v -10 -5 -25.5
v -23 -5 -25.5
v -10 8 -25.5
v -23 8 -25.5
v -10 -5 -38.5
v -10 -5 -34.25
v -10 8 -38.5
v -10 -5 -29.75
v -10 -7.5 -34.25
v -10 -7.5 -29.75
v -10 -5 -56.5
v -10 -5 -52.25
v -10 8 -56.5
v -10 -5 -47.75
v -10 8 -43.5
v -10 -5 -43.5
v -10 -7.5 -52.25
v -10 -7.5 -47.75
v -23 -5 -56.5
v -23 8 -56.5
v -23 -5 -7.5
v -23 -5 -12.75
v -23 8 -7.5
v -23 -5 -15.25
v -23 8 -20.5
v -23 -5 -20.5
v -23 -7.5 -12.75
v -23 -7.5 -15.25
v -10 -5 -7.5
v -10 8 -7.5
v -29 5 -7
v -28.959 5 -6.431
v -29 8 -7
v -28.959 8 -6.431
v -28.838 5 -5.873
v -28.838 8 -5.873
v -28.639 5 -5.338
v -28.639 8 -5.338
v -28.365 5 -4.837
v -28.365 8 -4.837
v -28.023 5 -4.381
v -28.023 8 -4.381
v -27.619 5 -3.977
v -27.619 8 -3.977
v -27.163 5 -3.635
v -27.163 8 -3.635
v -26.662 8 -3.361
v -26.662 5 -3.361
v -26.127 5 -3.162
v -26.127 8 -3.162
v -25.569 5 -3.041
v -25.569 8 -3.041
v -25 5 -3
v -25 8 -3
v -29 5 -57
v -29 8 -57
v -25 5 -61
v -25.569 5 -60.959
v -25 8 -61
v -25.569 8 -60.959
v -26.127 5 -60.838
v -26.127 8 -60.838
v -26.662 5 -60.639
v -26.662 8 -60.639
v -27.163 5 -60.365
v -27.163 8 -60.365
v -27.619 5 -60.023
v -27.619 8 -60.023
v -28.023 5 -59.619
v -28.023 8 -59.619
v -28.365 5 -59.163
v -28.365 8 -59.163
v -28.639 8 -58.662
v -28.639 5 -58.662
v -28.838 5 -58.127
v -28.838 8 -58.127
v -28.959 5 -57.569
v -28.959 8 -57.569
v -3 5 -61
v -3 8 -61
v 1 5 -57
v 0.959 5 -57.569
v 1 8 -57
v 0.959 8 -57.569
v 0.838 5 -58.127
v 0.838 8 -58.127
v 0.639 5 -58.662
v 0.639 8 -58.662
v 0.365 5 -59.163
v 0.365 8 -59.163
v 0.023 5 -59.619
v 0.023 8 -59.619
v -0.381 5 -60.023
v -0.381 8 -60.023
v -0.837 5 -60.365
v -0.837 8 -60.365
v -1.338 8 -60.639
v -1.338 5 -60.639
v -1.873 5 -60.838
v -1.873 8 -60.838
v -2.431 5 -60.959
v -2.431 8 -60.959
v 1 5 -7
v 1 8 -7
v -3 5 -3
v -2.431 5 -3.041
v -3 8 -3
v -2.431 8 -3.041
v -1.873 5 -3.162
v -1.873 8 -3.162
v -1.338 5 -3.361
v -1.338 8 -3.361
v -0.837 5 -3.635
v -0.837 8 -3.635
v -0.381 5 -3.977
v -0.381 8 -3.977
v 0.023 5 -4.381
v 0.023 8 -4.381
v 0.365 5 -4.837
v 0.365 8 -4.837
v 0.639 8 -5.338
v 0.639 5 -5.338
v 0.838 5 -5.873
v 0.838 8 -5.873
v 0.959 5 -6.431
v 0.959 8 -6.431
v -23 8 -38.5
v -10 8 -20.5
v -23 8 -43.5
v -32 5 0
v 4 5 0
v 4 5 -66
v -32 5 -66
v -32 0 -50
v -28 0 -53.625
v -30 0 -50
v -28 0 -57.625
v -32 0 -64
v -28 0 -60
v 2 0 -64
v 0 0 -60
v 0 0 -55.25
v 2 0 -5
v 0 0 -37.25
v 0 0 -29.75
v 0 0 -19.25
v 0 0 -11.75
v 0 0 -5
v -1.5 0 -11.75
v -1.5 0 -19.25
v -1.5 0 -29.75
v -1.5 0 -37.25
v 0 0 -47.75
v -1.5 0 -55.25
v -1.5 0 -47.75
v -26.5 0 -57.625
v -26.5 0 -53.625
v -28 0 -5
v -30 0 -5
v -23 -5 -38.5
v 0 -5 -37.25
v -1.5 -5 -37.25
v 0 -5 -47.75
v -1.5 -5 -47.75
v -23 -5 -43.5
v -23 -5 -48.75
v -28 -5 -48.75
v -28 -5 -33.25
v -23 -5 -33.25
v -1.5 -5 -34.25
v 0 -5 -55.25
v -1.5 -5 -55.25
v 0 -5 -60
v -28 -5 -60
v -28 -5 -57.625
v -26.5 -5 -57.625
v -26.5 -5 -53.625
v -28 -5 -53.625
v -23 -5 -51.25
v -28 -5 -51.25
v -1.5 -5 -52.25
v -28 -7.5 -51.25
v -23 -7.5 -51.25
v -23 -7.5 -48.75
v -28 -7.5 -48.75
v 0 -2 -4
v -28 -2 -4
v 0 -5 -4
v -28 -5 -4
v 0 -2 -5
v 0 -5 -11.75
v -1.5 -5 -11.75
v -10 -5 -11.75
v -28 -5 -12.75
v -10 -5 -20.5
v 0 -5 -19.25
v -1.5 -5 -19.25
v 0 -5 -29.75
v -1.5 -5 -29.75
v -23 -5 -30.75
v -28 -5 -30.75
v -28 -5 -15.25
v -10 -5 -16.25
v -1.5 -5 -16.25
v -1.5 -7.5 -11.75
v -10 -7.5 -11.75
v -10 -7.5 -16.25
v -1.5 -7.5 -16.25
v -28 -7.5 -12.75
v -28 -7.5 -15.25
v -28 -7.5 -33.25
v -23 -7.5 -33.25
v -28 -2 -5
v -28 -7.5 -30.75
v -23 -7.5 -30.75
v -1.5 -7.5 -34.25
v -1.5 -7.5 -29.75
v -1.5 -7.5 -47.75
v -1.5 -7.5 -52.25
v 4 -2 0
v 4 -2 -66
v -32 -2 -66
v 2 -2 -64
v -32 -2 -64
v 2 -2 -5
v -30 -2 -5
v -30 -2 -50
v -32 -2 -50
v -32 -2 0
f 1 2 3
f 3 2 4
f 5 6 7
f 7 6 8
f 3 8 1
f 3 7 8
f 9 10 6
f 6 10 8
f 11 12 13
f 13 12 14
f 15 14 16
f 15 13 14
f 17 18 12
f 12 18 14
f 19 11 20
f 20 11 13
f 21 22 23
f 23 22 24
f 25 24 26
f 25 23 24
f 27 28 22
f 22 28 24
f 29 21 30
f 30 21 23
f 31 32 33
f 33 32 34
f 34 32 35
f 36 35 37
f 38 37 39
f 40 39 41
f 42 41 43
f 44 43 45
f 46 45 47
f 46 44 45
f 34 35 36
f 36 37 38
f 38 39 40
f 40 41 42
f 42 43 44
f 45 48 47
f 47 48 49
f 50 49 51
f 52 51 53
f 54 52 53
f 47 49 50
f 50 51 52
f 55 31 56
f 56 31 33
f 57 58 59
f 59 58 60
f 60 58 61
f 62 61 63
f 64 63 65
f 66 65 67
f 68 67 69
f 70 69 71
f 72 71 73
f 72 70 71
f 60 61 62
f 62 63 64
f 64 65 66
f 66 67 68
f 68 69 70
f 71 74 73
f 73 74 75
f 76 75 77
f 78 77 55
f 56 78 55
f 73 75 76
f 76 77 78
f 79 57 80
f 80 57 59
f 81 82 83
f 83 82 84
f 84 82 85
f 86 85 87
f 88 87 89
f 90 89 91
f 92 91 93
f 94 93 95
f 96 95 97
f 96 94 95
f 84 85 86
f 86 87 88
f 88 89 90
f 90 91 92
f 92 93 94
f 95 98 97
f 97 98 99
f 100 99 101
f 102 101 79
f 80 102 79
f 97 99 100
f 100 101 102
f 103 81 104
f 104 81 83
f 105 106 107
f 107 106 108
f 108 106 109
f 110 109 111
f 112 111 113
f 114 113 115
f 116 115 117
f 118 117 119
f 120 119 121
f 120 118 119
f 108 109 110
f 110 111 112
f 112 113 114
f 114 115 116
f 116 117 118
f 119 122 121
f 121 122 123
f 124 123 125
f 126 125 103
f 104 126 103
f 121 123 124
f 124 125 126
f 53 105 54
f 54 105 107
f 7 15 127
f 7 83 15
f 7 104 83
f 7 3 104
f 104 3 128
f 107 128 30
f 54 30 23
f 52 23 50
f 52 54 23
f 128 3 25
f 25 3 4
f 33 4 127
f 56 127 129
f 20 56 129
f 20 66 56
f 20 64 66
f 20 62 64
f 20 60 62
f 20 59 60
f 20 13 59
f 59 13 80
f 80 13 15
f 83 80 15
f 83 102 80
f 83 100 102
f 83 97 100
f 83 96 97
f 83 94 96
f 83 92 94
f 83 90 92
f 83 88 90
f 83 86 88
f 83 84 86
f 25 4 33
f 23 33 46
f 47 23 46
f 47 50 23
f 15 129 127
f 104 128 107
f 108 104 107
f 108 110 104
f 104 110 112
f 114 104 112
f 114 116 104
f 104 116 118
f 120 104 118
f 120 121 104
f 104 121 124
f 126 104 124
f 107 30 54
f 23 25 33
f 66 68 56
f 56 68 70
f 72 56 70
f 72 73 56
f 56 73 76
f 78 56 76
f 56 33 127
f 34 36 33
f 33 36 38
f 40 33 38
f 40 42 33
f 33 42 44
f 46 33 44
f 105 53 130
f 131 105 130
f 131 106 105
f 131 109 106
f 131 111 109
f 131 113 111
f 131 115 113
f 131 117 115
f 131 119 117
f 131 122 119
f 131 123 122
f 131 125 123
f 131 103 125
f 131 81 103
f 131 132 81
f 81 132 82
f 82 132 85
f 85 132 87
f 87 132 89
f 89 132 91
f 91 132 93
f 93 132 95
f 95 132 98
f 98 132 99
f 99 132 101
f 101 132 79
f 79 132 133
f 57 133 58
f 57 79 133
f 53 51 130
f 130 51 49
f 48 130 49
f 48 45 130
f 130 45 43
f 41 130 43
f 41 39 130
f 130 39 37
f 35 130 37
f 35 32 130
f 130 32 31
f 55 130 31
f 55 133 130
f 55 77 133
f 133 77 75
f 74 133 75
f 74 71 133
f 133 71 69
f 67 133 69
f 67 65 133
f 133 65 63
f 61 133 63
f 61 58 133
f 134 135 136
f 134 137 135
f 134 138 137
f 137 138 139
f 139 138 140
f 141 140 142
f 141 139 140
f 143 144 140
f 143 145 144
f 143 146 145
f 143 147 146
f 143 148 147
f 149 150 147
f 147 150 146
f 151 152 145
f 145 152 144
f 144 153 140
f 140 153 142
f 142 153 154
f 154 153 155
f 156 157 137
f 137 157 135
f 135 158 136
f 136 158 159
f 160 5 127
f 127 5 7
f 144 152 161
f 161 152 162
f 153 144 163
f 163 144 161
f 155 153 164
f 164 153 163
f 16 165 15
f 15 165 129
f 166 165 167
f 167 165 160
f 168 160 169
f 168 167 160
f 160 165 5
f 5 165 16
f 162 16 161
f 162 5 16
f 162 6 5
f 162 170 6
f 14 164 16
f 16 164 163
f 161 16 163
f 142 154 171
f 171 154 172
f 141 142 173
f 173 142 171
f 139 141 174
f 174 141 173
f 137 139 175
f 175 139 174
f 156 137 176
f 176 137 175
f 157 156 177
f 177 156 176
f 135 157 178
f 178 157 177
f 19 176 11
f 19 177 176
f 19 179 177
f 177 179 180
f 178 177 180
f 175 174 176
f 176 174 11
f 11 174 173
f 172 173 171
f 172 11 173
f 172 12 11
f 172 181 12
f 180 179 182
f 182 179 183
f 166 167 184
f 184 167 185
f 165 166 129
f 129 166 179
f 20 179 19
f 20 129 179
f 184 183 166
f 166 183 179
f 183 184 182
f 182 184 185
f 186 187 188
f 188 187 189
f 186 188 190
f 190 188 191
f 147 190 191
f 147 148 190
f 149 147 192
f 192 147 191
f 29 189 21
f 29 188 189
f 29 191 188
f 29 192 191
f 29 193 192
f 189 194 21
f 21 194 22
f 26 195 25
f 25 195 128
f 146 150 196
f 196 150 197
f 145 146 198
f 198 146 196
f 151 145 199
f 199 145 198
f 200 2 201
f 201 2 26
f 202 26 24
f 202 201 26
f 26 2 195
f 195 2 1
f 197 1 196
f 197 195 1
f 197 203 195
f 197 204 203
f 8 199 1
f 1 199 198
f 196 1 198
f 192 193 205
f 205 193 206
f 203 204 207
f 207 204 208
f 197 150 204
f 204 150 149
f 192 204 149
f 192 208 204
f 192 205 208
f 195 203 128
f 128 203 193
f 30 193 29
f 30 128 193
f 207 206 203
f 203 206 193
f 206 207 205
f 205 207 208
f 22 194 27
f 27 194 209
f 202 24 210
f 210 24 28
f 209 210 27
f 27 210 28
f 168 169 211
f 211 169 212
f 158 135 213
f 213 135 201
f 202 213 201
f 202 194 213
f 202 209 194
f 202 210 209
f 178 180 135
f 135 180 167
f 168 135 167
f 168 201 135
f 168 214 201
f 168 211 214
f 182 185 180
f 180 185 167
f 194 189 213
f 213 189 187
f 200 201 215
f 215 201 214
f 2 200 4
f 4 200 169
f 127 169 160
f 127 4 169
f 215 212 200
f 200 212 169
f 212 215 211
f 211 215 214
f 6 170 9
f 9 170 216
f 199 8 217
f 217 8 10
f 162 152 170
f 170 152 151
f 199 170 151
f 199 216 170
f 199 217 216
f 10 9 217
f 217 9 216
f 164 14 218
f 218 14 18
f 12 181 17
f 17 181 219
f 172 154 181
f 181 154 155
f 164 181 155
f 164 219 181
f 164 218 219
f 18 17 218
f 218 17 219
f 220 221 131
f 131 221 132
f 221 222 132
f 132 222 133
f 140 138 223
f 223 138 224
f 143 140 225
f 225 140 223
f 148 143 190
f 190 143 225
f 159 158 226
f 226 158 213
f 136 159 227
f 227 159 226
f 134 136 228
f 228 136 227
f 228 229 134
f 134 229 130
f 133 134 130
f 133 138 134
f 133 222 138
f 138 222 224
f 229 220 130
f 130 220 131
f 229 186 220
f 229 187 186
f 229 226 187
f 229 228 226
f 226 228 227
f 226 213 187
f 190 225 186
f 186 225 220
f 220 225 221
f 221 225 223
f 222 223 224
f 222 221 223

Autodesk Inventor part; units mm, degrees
ref_plane "YZ Plane" through (0, 0, 0) normal (1, 0, 0) x (0, 1, 0)
ref_plane "XZ Plane" through (0, 0, 0) normal (0, 1, 0) x (-1, 0, 0)
ref_plane "XY Plane" through (0, 0, 0) normal (0, 0, 1) x (1, 0, 0)
sketch "Sketch1" plane through (0, 0, 0) normal (0, 1, 0) x (-1, 0, 0)
  line L0 (23, -43.5) -> (23, -56.5)
  line L1 (28, -33.25) -> (23, -33.25)
  line L2 (28, -30.75) -> (23, -30.75)
  line L3 (28, -48.75) -> (23, -48.75)
  line L4 (10, -56.5) -> (23, -56.5)
  line L5 (10, -7.5) -> (10, -20.5)
  line L6 (23, -43.5) -> (10, -43.5)
  line L7 (10, -43.5) -> (10, -56.5)
  line L8 (10, -38.5) -> (23, -38.5)
  line L9 (23, -38.5) -> (23, -25.5)
  line L10 (25.5, 0.6818) -> (25.5, -55.6748) construction
  line L11 (16.5, 0.1481) -> (16.5, -50.7513) construction
  line L12 (10, -25.5) -> (10, -38.5)
  line L13 (32.1467, -32) -> (-0.6768, -32) construction
  line L14 (10, -20.5) -> (23, -20.5)
  line L15 (23, -25.5) -> (10, -25.5)
  line L16 (23, -7.5) -> (10, -7.5)
  line L17 (30.1668, -14) -> (1.95, -14) construction
  line L18 (1.5, -34.25) -> (10, -34.25)
  line L19 (1.6727, -50) -> (31.8542, -50) construction
  line L20 (28, -60) -> (0, -60)
  line L21 (23, -51.25) -> (28, -51.25)
  line L22 (23, -7.5) -> (23, -20.5)
  line L23 (0, -29.75) -> (10, -29.75)
  line L24 (23, -15.25) -> (28, -15.25)
  line L25 (23, -12.75) -> (28, -12.75)
  line L26 (1.5, -16.25) -> (10, -16.25)
  line L27 (0, -11.75) -> (10, -11.75)
  line L28 (0, -47.75) -> (10, -47.75)
  line L29 (1.5, -52.25) -> (10, -52.25)
  line L30 (28, 0) -> (0, 0)
  line L31 (28, 0) -> (32, 0)
  line L32 (32, 0) -> (32, -66)
  line L33 (32, -66) -> (-4, -66)
  line L34 (-4, -66) -> (-4, 0)
  line L35 (28, -5) -> (30, -5)
  line L36 (30, -5) -> (30, -50)
  line L37 (30, -50) -> (32, -50)
  line L38 (-4, 0) -> (0, 0)
  line L39 (0, -5) -> (-2, -5)
  line L40 (-2, -5) -> (-2, -64)
  line L41 (-2, -64) -> (32, -64)
  line L42 (28, -4) -> (0, -4)
  line L43 (38, -5) -> (-10, -5) construction
  line L44 (0, -60) -> (0, -55.25)
  line L45 (0, -47.75) -> (0, -37.25)
  line L46 (0, -29.75) -> (0, -19.25)
  line L47 (0, -11.75) -> (0, 0)
  line L48 (1.5, -11.75) -> (1.5, -16.25)
  line L49 (1.5, -29.75) -> (1.5, -34.25)
  line L50 (1.5, -47.75) -> (1.5, -52.25)
  line L51 (1.5, -52.25) -> (1.5, -55.25)
  line L52 (1.5, -55.25) -> (0, -55.25)
  line L53 (1.5, -34.25) -> (1.5, -37.25)
  line L54 (1.5, -37.25) -> (0, -37.25)
  line L55 (1.5, -16.25) -> (1.5, -19.25)
  line L56 (1.5, -19.25) -> (0, -19.25)
  line L57 (28, 0) -> (28, -5)
  line L58 (31, -55.625) -> (29, -55.625) construction
  line L59 (28, -53.625) -> (26.5, -53.625)
  line L60 (26.5, -53.625) -> (26.5, -57.625)
  line L61 (26.5, -57.625) -> (28, -57.625)
  line L62 (28, -5) -> (28, -53.625)
  line L63 (28, -57.625) -> (28, -60)
  point P0 (16.5, -14)
  point P1 (16.5, -32)
  point P2 (16.5, -50)
  dimension "d0" = 13
  dimension "d3" = 2.5
  dimension "d6" = 4.5
  dimension "d7" = 4.5
  dimension "d8" = 4.5
  dimension "d10" = 13
  dimension "d11" = 18
  dimension "d12" = 18
  dimension "d13" = 13
  dimension "d16" = 13
  dimension "d17" = 3.5
  dimension "d18" = 4
  dimension "d20" = 45
  dimension "d21" = 4
  dimension "d22" = 2
  dimension "d23" = 2.5
  dimension "d24" = 3.5
  dimension "d25" = 4
  dimension "d26" = 2.5
  dimension "d27" = 2
  dimension "d28" = 4
  dimension "d29" = 66
  dimension "d30" = 36
  dimension "d37" = 1.5
  dimension "d38" = 10
  dimension "d39" = 2.5
  dimension "d55" = 3
  dimension "d58" = 28
  dimension "d59" = 2
  dimension "d60" = 1.5
  dimension "d61" = 4
extrude "Extrusion1" add sketch "Sketch1" against normal blind 2 contours L57 L31 L32 L37 L36 L35 | L42 L47 L30 L57 | L47 L39 L40 L41 L32 L33 L34 L38
extrude "Extrusion4" add sketch "Sketch1" against normal blind 7.5 contours L3 L62 L21 L0 | L7 L29 L50 L28 | L1 L9 L2 L62 | L24 L22 L25 L62 | L18 L49 L23 L12 | L26 L48 L27 L5
extrude "Extrusion5" add sketch "Sketch1" against normal blind 5 contours L6 L7 L28 L45 L54 L53 L18 L12 L8 L9 L1 L62 L3 L0 | L21 L62 L59 L60 L61 L63 L20 L44 L52 L51 L29 L7 L4 L0 | L2 L9 L15 L12 L23 L46 L56 L55 L26 L5 L14 L22 L24 L62 | L25 L22 L16 L5 L27 L47 L42 L57 L62
extrude "Extrusion6" add sketch "Sketch1" along normal blind 5 contours L6 L7 L28 L45 L54 L53 L18 L12 L8 L9 L1 L62 L3 L0 | L3 L62 L21 L0 | L21 L62 L59 L60 L61 L63 L20 L44 L52 L51 L29 L7 L4 L0 | L62 L35 L36 L37 L32 L41 L40 L39 L47 L27 L48 L55 L56 L46 L23 L49 L53 L54 L45 L28 L50 L51 L52 L44 L20 L63 L61 L60 L59 | L7 L29 L50 L28 | L1 L9 L2 L62 | L2 L9 L15 L12 L23 L46 L56 L55 L26 L5 L14 L22 L24 L62 | L24 L22 L25 L62 | L25 L22 L16 L5 L27 L47 L42 L57 L62 | L18 L49 L23 L12 | L57 L31 L32 L37 L36 L35 | L42 L47 L30 L57 | L26 L48 L27 L5 | L47 L39 L40 L41 L32 L33 L34 L38
sketch "Sketch2" plane through (0, 5, 0) normal (0, 1, 0) x (1, 0, 0)
  line L0 (-25, 3) -> (-3, 3)
  line L1 (1, 7) -> (1, 57)
  line L2 (-3, 61) -> (-25, 61)
  line L3 (-29, 57) -> (-29, 7)
  line L4 (-32, 66) -> (-32, 0) projected
  line L5 (-32, 0) -> (4, 0) projected
  line L6 (4, 0) -> (4, 66) projected
  line L7 (4, 66) -> (-32, 66) projected
  arc A0 (-29, 7) -> (-25, 3) centre (-25, 7) ccw
  arc A1 (-25, 61) -> (-29, 57) centre (-25, 57) ccw
  arc A2 (-3, 3) -> (1, 7) centre (-3, 7) ccw
  arc A3 (1, 57) -> (-3, 61) centre (-3, 57) ccw
  point P0 (0, 0)
  dimension "d46" = 3
  dimension "d47" = 3
  dimension "d48" = 3
  dimension "d49" = 5
  dimension "d54" = 8
extrude "Extrusion7" add sketch "Sketch2" along normal blind 3 contours A0 L3 A1 L2 A3 L1 A2 L0
extrude "Extrusion8" cut sketch "Sketch1" along normal blind 10 contours L0 L4 L7 L6 | L9 L8 L12 L15 | L22 L14 L5 L16
properties part number "Top_V3"
